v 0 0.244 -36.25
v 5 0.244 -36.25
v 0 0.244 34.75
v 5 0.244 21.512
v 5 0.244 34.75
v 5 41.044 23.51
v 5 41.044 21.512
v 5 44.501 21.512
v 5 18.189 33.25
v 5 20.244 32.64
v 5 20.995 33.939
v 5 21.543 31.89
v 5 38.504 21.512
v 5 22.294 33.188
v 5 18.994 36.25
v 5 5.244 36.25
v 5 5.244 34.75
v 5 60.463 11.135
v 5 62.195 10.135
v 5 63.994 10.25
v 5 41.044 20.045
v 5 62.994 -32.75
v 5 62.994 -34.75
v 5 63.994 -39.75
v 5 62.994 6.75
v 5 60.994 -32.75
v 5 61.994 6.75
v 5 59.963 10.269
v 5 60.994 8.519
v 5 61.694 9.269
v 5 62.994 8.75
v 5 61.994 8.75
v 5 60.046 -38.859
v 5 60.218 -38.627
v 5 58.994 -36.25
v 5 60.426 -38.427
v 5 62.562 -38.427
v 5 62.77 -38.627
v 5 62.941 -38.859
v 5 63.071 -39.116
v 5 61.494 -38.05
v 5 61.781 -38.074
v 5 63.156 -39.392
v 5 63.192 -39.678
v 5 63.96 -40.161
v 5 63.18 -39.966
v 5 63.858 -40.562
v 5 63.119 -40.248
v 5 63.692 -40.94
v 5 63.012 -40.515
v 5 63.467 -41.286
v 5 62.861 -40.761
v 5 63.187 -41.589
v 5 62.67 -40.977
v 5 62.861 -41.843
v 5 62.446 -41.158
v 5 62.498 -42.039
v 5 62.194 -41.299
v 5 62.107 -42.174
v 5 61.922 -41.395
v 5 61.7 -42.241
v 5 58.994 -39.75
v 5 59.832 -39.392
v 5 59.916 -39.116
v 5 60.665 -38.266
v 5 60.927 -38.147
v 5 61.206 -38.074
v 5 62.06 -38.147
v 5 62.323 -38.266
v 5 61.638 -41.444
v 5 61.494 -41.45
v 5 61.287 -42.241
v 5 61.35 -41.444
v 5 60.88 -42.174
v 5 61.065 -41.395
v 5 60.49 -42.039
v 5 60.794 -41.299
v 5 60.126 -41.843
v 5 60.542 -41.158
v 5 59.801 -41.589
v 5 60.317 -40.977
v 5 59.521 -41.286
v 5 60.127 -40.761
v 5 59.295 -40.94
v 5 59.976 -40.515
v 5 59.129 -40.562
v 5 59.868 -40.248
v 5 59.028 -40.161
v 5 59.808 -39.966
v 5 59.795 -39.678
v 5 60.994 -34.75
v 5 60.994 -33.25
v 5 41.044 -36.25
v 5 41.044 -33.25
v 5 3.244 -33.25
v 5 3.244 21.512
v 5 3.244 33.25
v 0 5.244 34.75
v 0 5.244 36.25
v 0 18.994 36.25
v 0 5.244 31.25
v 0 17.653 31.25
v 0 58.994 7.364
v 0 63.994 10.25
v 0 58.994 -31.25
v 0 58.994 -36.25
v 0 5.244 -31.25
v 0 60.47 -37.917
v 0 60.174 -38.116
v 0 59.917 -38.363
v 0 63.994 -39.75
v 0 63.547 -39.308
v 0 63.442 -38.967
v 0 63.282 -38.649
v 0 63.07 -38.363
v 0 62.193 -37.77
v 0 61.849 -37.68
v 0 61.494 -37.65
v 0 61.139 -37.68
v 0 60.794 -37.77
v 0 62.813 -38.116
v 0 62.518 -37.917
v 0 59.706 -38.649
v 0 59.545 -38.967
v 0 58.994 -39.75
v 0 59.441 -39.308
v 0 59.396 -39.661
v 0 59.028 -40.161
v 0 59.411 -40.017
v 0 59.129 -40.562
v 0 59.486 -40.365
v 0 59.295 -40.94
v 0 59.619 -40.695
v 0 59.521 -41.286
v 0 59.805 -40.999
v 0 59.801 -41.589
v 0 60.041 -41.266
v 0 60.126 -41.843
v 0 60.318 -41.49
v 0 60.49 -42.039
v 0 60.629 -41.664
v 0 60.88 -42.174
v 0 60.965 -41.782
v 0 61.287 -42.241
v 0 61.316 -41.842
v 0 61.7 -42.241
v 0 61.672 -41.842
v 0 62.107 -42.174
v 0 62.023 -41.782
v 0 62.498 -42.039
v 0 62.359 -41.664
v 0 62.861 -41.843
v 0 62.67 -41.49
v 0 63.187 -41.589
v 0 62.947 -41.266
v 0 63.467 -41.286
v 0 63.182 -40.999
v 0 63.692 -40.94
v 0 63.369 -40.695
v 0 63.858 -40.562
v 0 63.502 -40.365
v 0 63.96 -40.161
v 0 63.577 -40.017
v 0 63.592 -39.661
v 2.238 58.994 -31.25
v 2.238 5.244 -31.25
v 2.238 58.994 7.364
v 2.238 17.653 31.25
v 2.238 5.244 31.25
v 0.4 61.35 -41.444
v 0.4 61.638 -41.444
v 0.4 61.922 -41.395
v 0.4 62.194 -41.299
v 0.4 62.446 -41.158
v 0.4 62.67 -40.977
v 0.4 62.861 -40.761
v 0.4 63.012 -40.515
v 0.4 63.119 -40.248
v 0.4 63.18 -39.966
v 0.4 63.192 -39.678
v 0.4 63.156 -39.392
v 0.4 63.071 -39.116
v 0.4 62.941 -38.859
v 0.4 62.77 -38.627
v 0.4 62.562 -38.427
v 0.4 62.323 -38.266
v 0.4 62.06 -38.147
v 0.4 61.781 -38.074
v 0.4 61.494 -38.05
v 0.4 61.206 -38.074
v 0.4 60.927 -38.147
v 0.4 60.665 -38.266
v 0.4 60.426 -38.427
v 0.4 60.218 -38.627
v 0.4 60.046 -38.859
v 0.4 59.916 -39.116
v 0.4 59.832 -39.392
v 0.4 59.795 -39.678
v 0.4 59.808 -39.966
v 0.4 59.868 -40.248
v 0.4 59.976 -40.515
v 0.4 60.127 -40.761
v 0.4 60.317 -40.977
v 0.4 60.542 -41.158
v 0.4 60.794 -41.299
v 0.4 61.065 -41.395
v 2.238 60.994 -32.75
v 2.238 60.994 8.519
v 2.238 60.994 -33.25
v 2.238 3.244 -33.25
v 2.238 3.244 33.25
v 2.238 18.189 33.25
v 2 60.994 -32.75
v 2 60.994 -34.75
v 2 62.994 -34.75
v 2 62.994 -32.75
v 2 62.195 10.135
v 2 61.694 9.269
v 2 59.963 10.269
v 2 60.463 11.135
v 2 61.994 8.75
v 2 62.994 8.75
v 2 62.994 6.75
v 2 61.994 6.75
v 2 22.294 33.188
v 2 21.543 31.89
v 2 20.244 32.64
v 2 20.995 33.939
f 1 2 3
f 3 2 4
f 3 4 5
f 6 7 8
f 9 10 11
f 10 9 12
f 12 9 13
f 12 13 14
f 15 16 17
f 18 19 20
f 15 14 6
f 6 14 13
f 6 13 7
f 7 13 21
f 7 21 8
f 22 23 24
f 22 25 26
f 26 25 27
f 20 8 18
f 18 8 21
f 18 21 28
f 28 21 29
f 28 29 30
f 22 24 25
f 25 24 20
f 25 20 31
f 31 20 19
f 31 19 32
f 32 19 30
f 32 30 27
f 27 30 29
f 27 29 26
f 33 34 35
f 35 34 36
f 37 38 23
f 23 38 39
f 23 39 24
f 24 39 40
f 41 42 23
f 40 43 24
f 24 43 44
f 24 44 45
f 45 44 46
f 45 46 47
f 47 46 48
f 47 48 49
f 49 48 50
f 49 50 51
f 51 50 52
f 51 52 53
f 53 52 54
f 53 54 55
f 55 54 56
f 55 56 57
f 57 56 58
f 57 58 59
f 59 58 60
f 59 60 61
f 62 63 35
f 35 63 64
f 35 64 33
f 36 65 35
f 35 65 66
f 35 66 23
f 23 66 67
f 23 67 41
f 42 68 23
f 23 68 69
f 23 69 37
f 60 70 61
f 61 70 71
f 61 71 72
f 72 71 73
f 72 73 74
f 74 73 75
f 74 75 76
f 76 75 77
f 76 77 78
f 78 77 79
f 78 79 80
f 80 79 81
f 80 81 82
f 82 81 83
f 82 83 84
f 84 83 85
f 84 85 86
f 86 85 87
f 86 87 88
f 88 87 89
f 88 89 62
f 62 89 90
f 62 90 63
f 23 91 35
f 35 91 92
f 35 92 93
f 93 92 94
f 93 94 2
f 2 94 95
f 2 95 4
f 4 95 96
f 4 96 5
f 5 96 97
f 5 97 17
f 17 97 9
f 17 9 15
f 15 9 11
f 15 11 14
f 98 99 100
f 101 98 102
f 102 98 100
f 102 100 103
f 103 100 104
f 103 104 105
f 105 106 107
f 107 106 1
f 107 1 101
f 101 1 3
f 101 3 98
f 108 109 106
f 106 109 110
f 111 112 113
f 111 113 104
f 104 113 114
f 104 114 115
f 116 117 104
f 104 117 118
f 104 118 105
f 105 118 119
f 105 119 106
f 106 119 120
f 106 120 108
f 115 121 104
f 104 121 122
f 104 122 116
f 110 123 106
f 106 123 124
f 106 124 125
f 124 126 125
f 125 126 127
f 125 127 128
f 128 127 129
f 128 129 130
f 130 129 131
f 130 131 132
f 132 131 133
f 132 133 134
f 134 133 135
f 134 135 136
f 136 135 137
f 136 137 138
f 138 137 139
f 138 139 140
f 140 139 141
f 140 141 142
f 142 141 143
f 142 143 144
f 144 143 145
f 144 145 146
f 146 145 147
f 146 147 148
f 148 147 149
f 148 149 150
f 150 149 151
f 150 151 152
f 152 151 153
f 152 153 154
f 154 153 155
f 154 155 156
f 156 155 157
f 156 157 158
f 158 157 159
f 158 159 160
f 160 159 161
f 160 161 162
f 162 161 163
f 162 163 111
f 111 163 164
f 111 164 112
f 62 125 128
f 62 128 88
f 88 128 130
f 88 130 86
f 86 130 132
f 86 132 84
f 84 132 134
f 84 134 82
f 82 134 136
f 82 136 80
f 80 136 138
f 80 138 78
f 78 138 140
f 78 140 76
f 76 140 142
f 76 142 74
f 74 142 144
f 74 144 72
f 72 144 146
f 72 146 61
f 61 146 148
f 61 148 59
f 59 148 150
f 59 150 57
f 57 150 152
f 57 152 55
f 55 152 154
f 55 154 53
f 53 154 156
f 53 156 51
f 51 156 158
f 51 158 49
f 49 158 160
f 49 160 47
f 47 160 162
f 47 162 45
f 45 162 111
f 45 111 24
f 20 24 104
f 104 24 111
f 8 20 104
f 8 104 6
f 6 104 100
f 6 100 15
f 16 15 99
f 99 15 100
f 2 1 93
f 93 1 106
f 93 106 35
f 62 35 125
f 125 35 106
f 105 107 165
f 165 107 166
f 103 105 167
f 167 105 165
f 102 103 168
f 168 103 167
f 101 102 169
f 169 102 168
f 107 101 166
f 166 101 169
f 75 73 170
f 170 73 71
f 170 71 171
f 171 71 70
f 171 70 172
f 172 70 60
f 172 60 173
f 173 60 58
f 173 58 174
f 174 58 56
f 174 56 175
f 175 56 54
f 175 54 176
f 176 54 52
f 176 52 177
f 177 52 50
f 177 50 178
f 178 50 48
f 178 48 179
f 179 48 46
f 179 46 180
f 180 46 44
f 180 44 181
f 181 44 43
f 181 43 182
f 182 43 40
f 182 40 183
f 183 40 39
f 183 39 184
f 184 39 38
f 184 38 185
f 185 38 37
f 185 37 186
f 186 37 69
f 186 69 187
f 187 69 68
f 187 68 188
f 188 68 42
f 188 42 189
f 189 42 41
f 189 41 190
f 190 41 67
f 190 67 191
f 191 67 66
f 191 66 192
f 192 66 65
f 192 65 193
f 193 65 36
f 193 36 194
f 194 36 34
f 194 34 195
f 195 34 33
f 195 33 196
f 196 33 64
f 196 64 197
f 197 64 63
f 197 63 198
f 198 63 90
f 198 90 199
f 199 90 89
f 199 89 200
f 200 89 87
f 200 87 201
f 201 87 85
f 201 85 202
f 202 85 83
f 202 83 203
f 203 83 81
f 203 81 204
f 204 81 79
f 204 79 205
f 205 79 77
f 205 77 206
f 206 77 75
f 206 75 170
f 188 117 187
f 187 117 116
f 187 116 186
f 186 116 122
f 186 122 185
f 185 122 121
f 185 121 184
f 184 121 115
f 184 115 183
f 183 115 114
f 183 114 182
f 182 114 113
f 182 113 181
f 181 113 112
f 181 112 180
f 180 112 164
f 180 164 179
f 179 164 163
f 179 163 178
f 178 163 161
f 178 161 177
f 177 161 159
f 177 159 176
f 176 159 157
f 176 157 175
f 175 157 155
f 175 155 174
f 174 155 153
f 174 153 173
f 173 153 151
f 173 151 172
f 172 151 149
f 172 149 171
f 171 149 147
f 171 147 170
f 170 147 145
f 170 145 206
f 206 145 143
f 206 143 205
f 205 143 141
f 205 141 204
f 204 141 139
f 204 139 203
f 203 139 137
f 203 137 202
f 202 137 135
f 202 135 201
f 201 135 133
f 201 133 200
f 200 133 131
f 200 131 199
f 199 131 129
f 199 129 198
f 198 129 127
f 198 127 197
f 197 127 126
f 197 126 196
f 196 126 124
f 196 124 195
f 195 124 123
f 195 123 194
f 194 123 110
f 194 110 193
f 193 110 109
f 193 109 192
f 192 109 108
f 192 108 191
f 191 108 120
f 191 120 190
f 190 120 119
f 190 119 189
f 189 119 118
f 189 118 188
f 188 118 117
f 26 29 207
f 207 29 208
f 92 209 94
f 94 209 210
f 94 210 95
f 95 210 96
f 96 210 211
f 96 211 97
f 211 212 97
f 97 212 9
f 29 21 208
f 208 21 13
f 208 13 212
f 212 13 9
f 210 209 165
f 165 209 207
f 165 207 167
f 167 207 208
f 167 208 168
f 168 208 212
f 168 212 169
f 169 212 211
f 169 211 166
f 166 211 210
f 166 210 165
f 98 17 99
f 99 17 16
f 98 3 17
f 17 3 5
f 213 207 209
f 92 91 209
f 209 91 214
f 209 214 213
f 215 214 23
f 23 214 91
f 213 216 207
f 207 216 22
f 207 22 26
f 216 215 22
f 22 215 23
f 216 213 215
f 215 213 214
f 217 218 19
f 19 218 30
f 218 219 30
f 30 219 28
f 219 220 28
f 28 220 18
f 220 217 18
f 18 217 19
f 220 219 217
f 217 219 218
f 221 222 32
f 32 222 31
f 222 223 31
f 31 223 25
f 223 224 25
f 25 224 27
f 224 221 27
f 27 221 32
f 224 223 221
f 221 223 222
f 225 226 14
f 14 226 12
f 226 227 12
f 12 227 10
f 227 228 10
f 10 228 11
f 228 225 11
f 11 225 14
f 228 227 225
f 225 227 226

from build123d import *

# Parameters (mm, degrees)
BOSS_EXTRUDE1_DEPTH                             = 5
CSK_FOR_M3_FLAT_HEAD_MACHINE_SCREW1_D           = 3.4
CSK_FOR_M3_FLAT_HEAD_MACHINE_SCREW1_DEPTH       = 10
CSK_FOR_M3_FLAT_HEAD_MACHINE_SCREW1_CSINK_D     = 4.2
CSK_FOR_M3_FLAT_HEAD_MACHINE_SCREW1_CSINK_ANGLE = 90
CSK_FOR_M3_FLAT_HEAD_MACHINE_SCREW1_TIP         = 1.021463052
CUT_EXTRUDE1_DEPTH                              = 2.762
SKETCH9_W                                       = 5
SKETCH9_H                                       = 5
CUT_EXTRUDE3_DEPTH                              = 1.5
SKETCH10_W                                      = 2
SKETCH10_H                                      = 2
CUT_EXTRUDE4_DEPTH                              = 3
CUT_EXTRUDE5_DEPTH                              = 3
CUT_EXTRUDE6_DEPTH                              = 3


with BuildPart() as part:
    # Sketch1 → Boss-Extrude1 (new body)
    with BuildSketch(Plane(origin=(0, 0, 0), x_dir=(0, 0, -1), z_dir=(1, 0, 0))):
        with BuildLine():
            Line((-36.25, 0.243748214), (36.25, 0.243748214))
            Line((36.25, 0.243748214), (36.25, 58.993748214))
            Line((36.25, 58.993748214), (39.75, 58.993748214))
            ThreePointArc((39.75, 58.993748214), (42.25, 61.493748214), (39.75, 63.993748214))
            Line((39.75, 63.993748214), (36.25, 63.993748214))
            Line((36.25, 63.993748214), (-10.25, 63.993748214))
            Line((-10.25, 63.993748214), (-36.25, 18.993748214))
            Line((-36.25, 18.993748214), (-36.25, 0.243748214))
        make_face()
        Polygon((31.25, 5.243748214), (-31.25, 5.243748214), (-31.25, 17.653143244), (-18.920674634, 38.992360224), (-7.364317129, 58.993748214), (31.25, 58.993748214), align=None, mode=Mode.SUBTRACT)
    extrude(amount=BOSS_EXTRUDE1_DEPTH)

    # CSK for M3 Flat Head Machine Screw1
    with Locations(Plane.ZY):
        with Locations((-39.75, 61.493748214)):
            CounterSinkHole(CSK_FOR_M3_FLAT_HEAD_MACHINE_SCREW1_D / 2, CSK_FOR_M3_FLAT_HEAD_MACHINE_SCREW1_CSINK_D / 2, depth=CSK_FOR_M3_FLAT_HEAD_MACHINE_SCREW1_DEPTH, counter_sink_angle=CSK_FOR_M3_FLAT_HEAD_MACHINE_SCREW1_CSINK_ANGLE)
            with Locations((0, 0, -(CSK_FOR_M3_FLAT_HEAD_MACHINE_SCREW1_DEPTH + CSK_FOR_M3_FLAT_HEAD_MACHINE_SCREW1_TIP / 2))):  # 118° drill point
                Cone(0, CSK_FOR_M3_FLAT_HEAD_MACHINE_SCREW1_D / 2, CSK_FOR_M3_FLAT_HEAD_MACHINE_SCREW1_TIP, mode=Mode.SUBTRACT)

    # Sketch6 → Cut-Extrude1 (cut)
    with BuildSketch(Plane(origin=(5, 0, 0), x_dir=(0, 0, -1), z_dir=(1, 0, 0))):
        Polygon((33.25, 60.993748214), (33.25, 3.243748214), (-33.25, 3.243748214), (-33.25, 18.189385232), (-8.518590277, 60.993748214), align=None)
    extrude(amount=-CUT_EXTRUDE1_DEPTH, mode=Mode.SUBTRACT)

    # Sketch9 → Cut-Extrude3 (cut)
    with BuildSketch(Plane.XY.offset(36.25)):
        with Locations((2.5, 2.743748214)):
            Rectangle(SKETCH9_W, SKETCH9_H)
    extrude(amount=-CUT_EXTRUDE3_DEPTH, mode=Mode.SUBTRACT)

    # Sketch10 → Cut-Extrude4 (cut)
    with BuildSketch(Plane(origin=(5, 0, 0), x_dir=(0, 0, -1), z_dir=(1, 0, 0))):
        with Locations((33.75, 61.993748214)):
            Rectangle(SKETCH10_W, SKETCH10_H)
    extrude(amount=-CUT_EXTRUDE4_DEPTH, mode=Mode.SUBTRACT)

    # Sketch13 → Cut-Extrude5 (cut)
    with BuildSketch(Plane(origin=(5, 0, 0), x_dir=(0, 0, -1), z_dir=(1, 0, 0))):
        Polygon((-8.75000025, 62.993748214), (-6.75, 62.993748214), (-6.750000265, 61.993748214), (-8.75000025, 61.993988423), align=None)
        Polygon((-11.135106519, 60.46294286), (-10.134551324, 62.194673006), (-9.26868625, 61.694395408), (-10.269241446, 59.962665262), align=None)
    extrude(amount=-CUT_EXTRUDE5_DEPTH, mode=Mode.SUBTRACT)

    # Sketch15 → Cut-Extrude6 (cut)
    with BuildSketch(Plane(origin=(5, 0, 0), x_dir=(0, 0, -1), z_dir=(1, 0, 0))):
        Polygon((-33.188472136, 22.293656216), (-33.938888532, 20.994858606), (-32.640090922, 20.244442209), (-31.889674526, 21.543239819), align=None)
    extrude(amount=-CUT_EXTRUDE6_DEPTH, mode=Mode.SUBTRACT)


solid = part.part
